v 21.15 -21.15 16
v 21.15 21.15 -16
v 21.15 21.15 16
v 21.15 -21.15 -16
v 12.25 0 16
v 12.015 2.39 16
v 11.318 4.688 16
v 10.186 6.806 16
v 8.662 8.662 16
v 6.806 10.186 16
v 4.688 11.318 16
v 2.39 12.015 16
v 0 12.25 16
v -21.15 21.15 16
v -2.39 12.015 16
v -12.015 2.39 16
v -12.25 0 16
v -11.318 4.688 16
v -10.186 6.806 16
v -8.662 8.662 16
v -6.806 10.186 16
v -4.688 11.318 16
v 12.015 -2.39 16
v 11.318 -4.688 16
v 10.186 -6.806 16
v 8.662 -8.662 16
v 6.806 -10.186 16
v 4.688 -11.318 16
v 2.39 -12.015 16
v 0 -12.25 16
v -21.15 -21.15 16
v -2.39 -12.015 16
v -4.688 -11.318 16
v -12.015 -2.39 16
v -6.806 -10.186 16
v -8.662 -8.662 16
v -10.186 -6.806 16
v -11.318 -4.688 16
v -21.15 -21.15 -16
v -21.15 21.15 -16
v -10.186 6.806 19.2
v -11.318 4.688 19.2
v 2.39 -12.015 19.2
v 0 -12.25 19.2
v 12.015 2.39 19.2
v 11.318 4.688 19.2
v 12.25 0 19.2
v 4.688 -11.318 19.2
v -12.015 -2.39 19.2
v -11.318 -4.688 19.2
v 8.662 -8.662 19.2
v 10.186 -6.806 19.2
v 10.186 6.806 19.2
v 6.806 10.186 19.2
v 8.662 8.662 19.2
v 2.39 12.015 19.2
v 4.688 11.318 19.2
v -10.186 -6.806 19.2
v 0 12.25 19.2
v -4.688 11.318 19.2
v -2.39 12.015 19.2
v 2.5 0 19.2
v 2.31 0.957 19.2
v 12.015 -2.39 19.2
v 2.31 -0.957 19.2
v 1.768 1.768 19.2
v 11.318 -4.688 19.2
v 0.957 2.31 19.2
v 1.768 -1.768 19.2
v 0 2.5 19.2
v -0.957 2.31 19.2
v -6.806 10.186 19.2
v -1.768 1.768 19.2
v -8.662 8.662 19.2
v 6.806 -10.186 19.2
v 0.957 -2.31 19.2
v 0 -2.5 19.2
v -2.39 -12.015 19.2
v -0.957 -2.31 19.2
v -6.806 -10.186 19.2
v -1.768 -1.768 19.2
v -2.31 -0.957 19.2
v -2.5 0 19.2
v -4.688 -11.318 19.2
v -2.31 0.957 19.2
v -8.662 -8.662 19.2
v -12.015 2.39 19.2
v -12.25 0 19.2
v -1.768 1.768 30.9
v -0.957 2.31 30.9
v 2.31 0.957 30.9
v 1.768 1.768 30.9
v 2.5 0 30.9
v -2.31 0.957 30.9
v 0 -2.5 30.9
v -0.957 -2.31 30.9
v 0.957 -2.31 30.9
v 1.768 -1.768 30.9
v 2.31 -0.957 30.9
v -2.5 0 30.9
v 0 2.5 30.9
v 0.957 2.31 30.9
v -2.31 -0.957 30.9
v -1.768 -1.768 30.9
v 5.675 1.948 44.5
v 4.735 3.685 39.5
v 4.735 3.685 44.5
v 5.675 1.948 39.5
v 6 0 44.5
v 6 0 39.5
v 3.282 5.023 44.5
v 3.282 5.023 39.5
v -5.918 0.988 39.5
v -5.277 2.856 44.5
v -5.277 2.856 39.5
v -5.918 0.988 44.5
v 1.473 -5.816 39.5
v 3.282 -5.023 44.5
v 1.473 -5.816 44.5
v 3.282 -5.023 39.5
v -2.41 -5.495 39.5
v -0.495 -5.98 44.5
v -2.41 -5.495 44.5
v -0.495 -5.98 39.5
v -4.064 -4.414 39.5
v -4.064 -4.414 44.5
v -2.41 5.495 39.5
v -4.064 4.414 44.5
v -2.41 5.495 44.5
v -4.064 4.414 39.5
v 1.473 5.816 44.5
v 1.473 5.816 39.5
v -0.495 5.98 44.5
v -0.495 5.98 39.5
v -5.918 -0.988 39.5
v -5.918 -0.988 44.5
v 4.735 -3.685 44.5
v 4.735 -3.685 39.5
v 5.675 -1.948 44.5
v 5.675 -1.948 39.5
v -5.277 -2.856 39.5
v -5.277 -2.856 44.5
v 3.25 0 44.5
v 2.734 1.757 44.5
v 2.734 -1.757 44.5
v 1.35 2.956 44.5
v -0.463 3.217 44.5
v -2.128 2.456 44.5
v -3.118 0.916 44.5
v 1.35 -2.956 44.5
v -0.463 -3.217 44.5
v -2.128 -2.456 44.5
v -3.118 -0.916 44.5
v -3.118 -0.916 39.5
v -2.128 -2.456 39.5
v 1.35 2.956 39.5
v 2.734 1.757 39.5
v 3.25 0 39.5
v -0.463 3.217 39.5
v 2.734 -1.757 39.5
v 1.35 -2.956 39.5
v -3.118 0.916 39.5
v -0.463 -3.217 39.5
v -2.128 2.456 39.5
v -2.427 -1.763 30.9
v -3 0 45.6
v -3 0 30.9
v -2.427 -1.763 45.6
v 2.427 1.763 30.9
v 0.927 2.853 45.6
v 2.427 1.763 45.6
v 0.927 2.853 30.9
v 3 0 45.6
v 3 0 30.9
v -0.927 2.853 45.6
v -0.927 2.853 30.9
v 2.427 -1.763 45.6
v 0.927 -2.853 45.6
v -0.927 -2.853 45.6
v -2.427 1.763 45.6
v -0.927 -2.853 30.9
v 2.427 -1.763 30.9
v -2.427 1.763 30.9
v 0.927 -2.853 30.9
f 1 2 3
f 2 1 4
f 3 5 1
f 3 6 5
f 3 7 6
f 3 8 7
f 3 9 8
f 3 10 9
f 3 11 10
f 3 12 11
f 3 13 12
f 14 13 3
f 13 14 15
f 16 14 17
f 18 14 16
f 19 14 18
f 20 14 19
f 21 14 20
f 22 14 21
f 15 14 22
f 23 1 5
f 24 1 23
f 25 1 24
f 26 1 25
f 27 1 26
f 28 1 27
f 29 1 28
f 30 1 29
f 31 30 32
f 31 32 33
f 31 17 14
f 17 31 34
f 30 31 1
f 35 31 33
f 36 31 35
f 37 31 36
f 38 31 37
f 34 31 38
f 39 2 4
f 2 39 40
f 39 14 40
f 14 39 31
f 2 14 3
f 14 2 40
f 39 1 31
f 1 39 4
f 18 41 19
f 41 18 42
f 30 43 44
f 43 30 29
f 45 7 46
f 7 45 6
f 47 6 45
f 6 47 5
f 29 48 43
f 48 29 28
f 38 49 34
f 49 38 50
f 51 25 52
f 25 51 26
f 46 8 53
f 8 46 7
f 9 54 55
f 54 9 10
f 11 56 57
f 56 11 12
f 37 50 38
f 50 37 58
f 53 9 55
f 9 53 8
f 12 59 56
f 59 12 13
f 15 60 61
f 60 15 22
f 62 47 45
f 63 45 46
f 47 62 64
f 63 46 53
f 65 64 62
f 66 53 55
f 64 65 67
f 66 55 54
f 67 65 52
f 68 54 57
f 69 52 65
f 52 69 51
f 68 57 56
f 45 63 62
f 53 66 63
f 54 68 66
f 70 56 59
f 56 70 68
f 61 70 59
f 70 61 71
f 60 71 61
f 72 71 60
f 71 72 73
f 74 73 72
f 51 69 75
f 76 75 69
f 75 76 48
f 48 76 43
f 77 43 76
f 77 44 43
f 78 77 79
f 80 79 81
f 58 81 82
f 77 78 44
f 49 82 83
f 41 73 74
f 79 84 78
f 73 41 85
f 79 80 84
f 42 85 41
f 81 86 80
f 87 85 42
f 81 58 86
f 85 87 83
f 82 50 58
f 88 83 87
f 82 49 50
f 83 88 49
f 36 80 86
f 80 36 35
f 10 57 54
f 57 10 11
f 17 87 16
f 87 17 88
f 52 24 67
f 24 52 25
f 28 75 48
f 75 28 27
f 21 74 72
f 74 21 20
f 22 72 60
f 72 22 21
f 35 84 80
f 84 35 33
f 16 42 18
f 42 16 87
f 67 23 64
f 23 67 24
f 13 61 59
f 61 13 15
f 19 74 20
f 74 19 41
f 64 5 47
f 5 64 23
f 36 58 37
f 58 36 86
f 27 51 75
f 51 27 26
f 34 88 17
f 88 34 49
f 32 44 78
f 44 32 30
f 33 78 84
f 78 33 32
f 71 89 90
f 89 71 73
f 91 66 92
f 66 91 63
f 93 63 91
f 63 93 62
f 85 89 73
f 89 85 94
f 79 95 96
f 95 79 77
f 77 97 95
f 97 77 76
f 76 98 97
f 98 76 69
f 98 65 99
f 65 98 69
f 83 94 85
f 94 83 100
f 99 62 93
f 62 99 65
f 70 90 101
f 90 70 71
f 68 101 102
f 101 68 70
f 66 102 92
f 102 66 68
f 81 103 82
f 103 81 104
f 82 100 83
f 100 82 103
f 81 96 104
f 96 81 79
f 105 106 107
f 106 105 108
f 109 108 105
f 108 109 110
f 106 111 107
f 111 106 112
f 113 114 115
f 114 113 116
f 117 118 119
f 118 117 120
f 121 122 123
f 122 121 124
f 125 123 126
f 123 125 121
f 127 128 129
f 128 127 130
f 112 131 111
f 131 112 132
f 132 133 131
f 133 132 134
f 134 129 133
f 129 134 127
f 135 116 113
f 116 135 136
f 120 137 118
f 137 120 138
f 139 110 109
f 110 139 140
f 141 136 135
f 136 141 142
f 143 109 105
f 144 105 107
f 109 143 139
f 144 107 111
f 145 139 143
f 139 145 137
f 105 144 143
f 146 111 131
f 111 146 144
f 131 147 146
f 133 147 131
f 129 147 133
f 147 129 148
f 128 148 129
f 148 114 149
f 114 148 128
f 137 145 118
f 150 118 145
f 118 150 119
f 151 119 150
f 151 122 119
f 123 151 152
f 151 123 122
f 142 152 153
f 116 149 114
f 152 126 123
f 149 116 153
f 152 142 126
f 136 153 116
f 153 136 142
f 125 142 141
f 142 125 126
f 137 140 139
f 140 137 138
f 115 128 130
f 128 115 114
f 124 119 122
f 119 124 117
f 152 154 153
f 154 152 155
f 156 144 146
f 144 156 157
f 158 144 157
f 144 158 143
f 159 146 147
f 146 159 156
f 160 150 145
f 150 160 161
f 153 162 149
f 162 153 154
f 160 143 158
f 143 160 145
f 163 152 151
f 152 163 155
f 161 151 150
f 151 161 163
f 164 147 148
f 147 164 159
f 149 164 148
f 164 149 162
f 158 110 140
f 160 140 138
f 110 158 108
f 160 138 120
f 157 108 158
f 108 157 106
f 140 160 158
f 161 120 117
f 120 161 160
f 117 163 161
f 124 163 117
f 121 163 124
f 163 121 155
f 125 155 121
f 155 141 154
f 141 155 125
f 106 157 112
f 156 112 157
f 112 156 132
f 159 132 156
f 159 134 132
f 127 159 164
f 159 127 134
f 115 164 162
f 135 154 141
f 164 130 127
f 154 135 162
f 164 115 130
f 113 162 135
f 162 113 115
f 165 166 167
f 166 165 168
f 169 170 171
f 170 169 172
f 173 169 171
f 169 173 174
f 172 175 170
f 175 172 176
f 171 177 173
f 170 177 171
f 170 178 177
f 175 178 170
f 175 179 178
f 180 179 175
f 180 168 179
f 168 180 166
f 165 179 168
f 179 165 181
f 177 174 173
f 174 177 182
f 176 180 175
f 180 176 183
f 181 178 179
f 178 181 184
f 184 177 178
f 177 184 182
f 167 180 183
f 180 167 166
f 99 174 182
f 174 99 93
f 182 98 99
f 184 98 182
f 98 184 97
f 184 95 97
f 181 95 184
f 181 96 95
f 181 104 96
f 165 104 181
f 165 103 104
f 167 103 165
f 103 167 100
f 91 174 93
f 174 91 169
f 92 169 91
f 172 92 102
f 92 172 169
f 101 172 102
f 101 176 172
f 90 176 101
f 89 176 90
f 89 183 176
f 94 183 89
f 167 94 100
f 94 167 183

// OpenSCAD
// Parameters
gearbox_diameter = 37; //[18.5:74:0.1]
gearbox_height = 24.5; //[12.25:49:0.1]
motor_diameter = 35.6; //[17.8:71.2:0.1]
motor_length = 32; //[16:64:0.1]
shaft_diameter = 6; //[3:12:0.1]
shaft_length = 14.7; //[7.35:29.4:0.1]
interface_step_length = 3.2; //[1.6:6.4:0.1]
front_face_boss_diameter = 24.5; //[12.25:49:0.1]
front_face_boss_height = 3.2; //[1.6:6.4:0.1]
motor_shaft_diameter = 2.5; //[1.25:5:0.1]
motor_shaft_length = 10; //[5:20:0.1]
grommet_thickness = 2.5; //[1.25:5:0.1]
grommet_od = 12; //[6:24:0.1]
grommet_id = 6.5; //[3.25:13:0.1]
overlap = 1; //[0.5:2:0.1]

// Motor Shaft
module motor_shaft() {
  color("Silver") {
    cylinder(d=shaft_diameter, h=shaft_length, center=true);
  }
}

// Geared Stepper
module geared_stepper() {
  color("Black") {
    // Body
    cube([42.3, 42.3, motor_length], center=true);
    // Faceplate
    translate([0, 0, motor_length/2]) cylinder(d=front_face_boss_diameter, h=front_face_boss_height, $fn=32);
    // Shaft
    color("Silver") translate([0, 0, motor_length/2])
      cylinder(d=5, h=20, $fn=16);
  }
}

// Round Grommet Top
module round_grommet_top() {
  difference() {
    cylinder(d=grommet_od, h=grommet_thickness, center=true);
    translate([0, 0, -overlap]) cylinder(d=grommet_id, h=grommet_thickness + overlap*2, center=true);
  }
}

// Round Grommet Bottom
module round_grommet_bottom() {
  difference() {
    cylinder(d=grommet_od, h=grommet_thickness, center=true);
    translate([0, 0, -overlap]) cylinder(d=grommet_id, h=grommet_thickness + overlap*2, center=true);
  }
}

// Round Grommet Assembly
module round_grommet_assembly() {
  union() {
    translate([0, 0, grommet_thickness/2]) round_grommet_top();
    translate([0, 0, -grommet_thickness/2]) round_grommet_bottom();
  }
}

// Assembly
module assembly() {
  translate([0, 0, 0]) geared_stepper();
  translate([0, 0, gearbox_height/2 + motor_length - motor_shaft_length/2 - overlap]) motor_shaft();
  translate([0, 0, gearbox_height/2 + motor_length - grommet_thickness/2 - overlap]) round_grommet_assembly();
}

assembly();
